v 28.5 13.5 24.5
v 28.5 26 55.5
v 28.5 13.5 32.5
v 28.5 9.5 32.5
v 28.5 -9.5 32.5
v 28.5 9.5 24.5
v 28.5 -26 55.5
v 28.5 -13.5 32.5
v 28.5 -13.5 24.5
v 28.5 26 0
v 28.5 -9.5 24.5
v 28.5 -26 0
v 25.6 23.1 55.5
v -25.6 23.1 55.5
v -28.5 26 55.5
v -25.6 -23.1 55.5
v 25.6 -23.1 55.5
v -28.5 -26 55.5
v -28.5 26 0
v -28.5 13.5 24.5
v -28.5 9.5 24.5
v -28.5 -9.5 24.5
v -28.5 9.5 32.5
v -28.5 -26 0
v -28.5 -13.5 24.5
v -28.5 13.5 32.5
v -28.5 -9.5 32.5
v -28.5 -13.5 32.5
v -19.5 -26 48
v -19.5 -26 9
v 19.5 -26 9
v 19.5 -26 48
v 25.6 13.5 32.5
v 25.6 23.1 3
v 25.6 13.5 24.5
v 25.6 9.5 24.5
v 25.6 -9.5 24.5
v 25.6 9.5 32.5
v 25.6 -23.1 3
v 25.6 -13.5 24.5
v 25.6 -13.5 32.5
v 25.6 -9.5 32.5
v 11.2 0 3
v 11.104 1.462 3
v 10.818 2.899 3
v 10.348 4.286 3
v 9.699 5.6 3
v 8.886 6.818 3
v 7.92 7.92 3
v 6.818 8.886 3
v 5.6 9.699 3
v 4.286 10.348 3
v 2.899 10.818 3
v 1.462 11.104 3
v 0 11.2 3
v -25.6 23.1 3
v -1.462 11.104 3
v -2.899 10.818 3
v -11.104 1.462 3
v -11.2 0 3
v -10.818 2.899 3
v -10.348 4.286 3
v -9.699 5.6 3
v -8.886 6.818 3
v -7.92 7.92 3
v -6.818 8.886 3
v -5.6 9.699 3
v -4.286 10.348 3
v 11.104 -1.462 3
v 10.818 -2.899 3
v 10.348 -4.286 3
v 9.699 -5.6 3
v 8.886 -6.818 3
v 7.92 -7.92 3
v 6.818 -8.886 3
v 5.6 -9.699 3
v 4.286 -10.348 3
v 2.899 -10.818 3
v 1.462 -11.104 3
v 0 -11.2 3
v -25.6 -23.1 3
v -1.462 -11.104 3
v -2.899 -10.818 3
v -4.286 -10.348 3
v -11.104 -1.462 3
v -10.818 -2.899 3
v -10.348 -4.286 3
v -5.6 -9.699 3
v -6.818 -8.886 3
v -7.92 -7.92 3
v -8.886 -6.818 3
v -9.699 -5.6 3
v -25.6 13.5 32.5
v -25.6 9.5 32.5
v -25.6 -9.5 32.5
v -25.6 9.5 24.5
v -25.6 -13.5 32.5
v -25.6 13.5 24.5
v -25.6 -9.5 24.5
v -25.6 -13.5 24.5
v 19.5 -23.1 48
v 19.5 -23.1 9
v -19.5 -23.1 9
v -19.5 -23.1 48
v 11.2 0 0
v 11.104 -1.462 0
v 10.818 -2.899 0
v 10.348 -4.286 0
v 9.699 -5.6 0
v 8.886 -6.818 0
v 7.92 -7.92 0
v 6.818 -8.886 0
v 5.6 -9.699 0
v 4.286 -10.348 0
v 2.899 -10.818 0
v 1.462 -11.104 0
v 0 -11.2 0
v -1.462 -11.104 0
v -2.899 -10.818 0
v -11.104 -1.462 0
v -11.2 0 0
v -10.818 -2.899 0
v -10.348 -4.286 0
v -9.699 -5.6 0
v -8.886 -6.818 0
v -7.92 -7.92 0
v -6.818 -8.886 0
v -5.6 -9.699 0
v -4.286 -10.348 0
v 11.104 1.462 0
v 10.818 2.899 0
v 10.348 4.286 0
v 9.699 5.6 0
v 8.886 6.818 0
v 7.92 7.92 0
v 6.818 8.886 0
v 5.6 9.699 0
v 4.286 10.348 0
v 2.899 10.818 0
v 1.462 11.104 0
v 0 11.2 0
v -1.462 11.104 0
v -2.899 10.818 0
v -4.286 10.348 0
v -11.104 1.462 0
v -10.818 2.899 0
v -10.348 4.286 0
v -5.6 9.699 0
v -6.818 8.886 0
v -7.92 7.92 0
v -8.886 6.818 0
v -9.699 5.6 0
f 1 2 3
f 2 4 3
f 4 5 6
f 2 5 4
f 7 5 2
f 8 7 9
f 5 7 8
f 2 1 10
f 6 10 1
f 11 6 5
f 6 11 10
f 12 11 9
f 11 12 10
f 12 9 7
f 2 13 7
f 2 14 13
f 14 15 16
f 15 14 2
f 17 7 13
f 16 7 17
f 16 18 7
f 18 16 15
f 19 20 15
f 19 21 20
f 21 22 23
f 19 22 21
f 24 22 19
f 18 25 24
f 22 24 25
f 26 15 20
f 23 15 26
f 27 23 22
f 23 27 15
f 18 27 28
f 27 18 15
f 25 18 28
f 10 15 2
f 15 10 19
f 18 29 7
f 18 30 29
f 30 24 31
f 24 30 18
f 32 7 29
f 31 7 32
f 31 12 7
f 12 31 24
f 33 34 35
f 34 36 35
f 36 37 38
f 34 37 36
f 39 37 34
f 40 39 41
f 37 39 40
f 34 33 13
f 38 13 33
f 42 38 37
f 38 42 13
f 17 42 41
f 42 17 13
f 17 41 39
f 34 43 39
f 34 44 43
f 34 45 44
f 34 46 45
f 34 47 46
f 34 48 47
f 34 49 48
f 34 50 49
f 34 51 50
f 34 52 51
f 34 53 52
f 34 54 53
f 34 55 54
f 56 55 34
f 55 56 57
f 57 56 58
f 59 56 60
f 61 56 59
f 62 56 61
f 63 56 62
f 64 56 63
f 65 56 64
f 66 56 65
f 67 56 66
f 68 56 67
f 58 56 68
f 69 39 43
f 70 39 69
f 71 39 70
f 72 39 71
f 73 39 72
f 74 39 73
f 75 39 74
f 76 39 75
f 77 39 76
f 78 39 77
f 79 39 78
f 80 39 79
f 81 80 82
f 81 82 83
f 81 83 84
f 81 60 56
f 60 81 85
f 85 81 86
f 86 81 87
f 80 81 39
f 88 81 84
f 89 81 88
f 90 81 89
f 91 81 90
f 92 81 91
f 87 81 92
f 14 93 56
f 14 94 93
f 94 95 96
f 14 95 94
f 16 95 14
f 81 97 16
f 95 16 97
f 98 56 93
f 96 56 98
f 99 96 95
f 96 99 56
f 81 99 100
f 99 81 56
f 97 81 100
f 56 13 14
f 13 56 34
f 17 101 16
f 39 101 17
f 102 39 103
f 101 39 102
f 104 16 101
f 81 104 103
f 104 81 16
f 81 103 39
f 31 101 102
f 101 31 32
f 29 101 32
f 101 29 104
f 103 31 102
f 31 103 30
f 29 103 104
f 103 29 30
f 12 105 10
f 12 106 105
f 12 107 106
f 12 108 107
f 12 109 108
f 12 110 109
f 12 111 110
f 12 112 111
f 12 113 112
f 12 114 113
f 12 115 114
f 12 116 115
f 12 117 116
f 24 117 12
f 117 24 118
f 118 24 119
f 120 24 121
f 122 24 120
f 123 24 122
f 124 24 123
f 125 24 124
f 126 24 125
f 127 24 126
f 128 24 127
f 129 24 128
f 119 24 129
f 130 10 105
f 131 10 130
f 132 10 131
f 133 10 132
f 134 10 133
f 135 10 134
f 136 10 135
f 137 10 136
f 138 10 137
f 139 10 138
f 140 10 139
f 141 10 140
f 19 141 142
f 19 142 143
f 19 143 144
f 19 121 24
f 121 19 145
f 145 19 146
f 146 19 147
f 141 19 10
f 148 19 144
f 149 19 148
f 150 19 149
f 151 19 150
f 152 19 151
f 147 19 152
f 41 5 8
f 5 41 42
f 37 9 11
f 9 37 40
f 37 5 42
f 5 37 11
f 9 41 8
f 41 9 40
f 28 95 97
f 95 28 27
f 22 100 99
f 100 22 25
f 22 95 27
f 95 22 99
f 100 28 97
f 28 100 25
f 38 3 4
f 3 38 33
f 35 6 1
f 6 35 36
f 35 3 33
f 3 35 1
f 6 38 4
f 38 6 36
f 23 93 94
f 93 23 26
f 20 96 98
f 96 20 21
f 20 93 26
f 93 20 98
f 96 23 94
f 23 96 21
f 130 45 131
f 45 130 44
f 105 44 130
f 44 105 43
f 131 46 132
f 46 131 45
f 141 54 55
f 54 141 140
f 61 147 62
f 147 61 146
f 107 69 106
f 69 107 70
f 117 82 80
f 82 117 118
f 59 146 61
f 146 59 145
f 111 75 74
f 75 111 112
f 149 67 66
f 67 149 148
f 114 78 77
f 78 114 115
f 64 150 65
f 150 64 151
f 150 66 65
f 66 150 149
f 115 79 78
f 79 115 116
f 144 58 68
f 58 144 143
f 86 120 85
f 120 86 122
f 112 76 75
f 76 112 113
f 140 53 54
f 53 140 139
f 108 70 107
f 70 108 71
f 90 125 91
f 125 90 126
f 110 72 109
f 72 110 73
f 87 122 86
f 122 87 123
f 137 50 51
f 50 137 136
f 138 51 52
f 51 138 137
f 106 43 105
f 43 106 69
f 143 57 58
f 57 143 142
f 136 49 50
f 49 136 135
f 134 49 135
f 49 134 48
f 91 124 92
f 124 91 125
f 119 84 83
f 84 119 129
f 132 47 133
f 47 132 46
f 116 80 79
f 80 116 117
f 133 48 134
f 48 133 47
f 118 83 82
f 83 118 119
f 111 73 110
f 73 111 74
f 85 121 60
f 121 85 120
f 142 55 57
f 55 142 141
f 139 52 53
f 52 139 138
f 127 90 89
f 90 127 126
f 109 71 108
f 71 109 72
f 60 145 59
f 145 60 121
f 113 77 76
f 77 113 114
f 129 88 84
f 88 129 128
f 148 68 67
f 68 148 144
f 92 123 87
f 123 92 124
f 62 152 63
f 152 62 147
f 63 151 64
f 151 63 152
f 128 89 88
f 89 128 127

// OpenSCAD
// file: params.scad
// ============================================================
//  PARAMÈTRES GLOBAUX - Johnny-Mow
//  Modifier ici pour adapter à votre robot
// ============================================================

// --- Châssis ---
chassis_L   = 350;   // longueur totale mm
chassis_W   = 300;   // largeur totale mm
chassis_H   = 8;     // épaisseur plaque de base mm
rail_W      = 52;    // largeur de chaque rail de chenille mm
rail_H      = 35;    // hauteur du rail latéral mm
rail_wall   = 4;     // épaisseur paroi rail mm
center_H    = 22;    // hauteur plancher central (dessus lame) mm

// --- Lame ---
blade_D     = 220;   // diamètre du disque lame mm
blade_clearance = 8; // jeu autour de la lame mm
blade_guard_H   = 25; // hauteur de la jupe de protection mm
blade_guard_t   = 3;  // épaisseur jupe mm

// --- Moteurs de roue ---
motor_D     = 37;    // diamètre corps moteur mm (DC gearmotor standard)
motor_shaft = 6;     // diamètre axe moteur mm
motor_L     = 68;    // longueur corps moteur mm

// --- Chenilles ---
link_L      = 32;    // longueur d'un maillon mm
link_W      = 42;    // largeur d'un maillon mm (= largeur piste)
link_H      = 9;     // hauteur d'un maillon mm
link_pin_D  = 4.2;   // diamètre des goupilles d'articulation mm
link_gap    = 0.4;   // jeu d'impression entre maillons mm

// --- Roues ---
wheel_D     = 64;    // diamètre roue / pignon mm
wheel_W     = 38;    // largeur roue mm
wheel_bore  = 6.2;   // alésage axe mm
teeth       = 14;    // nombre de dents du pignon
tooth_H     = 5;     // hauteur des dents mm
tooth_W     = 5;     // largeur de base des dents mm

// --- Roue folle ---
idler_D     = 54;    // diamètre roue folle mm
idler_W     = 38;    // largeur roue folle mm
idler_bore  = 8.2;   // alésage roulement mm (608 = 8mm)

// --- Support caméra sur la tête (Wyze Cam) ---
// MESURER votre caméra et ajuster ! Valeurs par défaut ~ Wyze Cam v3.
cam_W       = 51;    // largeur caméra mm
cam_H       = 51;    // hauteur caméra mm
cam_D       = 46;    // profondeur caméra mm
cam_wall    = 3;     // épaisseur du berceau mm
servo_horn_D = 22;   // diamètre du palonnier servo (tilt) mm

// --- Impression ---
nozzle      = 0.4;   // diamètre buse mm
layer       = 0.2;   // hauteur de couche mm
tol         = 0.2;   // tolérance d'assemblage mm
// main file
// ============================================================
//  SUPPORT CAMÉRA SUR TÊTE - Johnny-Mow
//  Berceau pour caméra Wyze, fixé sur le palonnier du servo tilt.
//  La caméra suit ainsi les mouvements de tête (pan/tilt).
//  Imprimer : 1 pièce - PETG - 30% remplissage - supports : non
//  !! MESURER votre caméra et ajuster cam_W/cam_H/cam_D dans params.scad !!
// ============================================================
include <params.scad>

$fn = 48;

module head_camera_mount() {
    difference() {
        union() {
            // --- Berceau en U qui enveloppe la caméra ---
            difference() {
                // Coque externe
                translate([0, 0, cam_H/2 + cam_wall])
                    cube([cam_W + 2*cam_wall, cam_D + 2*cam_wall, cam_H + cam_wall], center=true);
                // Évidement caméra (ouvert vers le haut)
                translate([0, 0, cam_H/2 + cam_wall + 1])
                    cube([cam_W + tol, cam_D + tol, cam_H + 2], center=true);
                // Fenêtre avant pour l'objectif
                translate([0, -cam_D/2 - cam_wall, cam_H/2 + cam_wall])
                    cube([cam_W - 12, cam_wall*3, cam_H - 12], center=true);
            }

            // --- Platine inférieure (fixation servo tilt) ---
            translate([0, 0, cam_wall/2])
                cube([cam_W + 2*cam_wall, cam_D + 2*cam_wall, cam_wall], center=true);
        }

        // --- Trou central palonnier servo ---
        translate([0, 0, -1])
            cylinder(r=servo_horn_D/2 + tol, h=cam_wall + 2);

        // --- 4 trous de vis palonnier (M2, cercle ø16) ---
        for (a = [0:90:270]) {
            rotate([0, 0, a])
                translate([8, 0, -1])
                    cylinder(r=1.2, h=cam_wall + 2);
        }

        // --- Fentes pour sangle/serre-câble de maintien ---
        for (y = [-cam_D/4, cam_D/4]) {
            translate([cam_W/2 + cam_wall/2, y, cam_H/2 + cam_wall])
                cube([cam_wall + 2, 4, 8], center=true);
            translate([-cam_W/2 - cam_wall/2, y, cam_H/2 + cam_wall])
                cube([cam_wall + 2, 4, 8], center=true);
        }
    }
}

head_camera_mount();
